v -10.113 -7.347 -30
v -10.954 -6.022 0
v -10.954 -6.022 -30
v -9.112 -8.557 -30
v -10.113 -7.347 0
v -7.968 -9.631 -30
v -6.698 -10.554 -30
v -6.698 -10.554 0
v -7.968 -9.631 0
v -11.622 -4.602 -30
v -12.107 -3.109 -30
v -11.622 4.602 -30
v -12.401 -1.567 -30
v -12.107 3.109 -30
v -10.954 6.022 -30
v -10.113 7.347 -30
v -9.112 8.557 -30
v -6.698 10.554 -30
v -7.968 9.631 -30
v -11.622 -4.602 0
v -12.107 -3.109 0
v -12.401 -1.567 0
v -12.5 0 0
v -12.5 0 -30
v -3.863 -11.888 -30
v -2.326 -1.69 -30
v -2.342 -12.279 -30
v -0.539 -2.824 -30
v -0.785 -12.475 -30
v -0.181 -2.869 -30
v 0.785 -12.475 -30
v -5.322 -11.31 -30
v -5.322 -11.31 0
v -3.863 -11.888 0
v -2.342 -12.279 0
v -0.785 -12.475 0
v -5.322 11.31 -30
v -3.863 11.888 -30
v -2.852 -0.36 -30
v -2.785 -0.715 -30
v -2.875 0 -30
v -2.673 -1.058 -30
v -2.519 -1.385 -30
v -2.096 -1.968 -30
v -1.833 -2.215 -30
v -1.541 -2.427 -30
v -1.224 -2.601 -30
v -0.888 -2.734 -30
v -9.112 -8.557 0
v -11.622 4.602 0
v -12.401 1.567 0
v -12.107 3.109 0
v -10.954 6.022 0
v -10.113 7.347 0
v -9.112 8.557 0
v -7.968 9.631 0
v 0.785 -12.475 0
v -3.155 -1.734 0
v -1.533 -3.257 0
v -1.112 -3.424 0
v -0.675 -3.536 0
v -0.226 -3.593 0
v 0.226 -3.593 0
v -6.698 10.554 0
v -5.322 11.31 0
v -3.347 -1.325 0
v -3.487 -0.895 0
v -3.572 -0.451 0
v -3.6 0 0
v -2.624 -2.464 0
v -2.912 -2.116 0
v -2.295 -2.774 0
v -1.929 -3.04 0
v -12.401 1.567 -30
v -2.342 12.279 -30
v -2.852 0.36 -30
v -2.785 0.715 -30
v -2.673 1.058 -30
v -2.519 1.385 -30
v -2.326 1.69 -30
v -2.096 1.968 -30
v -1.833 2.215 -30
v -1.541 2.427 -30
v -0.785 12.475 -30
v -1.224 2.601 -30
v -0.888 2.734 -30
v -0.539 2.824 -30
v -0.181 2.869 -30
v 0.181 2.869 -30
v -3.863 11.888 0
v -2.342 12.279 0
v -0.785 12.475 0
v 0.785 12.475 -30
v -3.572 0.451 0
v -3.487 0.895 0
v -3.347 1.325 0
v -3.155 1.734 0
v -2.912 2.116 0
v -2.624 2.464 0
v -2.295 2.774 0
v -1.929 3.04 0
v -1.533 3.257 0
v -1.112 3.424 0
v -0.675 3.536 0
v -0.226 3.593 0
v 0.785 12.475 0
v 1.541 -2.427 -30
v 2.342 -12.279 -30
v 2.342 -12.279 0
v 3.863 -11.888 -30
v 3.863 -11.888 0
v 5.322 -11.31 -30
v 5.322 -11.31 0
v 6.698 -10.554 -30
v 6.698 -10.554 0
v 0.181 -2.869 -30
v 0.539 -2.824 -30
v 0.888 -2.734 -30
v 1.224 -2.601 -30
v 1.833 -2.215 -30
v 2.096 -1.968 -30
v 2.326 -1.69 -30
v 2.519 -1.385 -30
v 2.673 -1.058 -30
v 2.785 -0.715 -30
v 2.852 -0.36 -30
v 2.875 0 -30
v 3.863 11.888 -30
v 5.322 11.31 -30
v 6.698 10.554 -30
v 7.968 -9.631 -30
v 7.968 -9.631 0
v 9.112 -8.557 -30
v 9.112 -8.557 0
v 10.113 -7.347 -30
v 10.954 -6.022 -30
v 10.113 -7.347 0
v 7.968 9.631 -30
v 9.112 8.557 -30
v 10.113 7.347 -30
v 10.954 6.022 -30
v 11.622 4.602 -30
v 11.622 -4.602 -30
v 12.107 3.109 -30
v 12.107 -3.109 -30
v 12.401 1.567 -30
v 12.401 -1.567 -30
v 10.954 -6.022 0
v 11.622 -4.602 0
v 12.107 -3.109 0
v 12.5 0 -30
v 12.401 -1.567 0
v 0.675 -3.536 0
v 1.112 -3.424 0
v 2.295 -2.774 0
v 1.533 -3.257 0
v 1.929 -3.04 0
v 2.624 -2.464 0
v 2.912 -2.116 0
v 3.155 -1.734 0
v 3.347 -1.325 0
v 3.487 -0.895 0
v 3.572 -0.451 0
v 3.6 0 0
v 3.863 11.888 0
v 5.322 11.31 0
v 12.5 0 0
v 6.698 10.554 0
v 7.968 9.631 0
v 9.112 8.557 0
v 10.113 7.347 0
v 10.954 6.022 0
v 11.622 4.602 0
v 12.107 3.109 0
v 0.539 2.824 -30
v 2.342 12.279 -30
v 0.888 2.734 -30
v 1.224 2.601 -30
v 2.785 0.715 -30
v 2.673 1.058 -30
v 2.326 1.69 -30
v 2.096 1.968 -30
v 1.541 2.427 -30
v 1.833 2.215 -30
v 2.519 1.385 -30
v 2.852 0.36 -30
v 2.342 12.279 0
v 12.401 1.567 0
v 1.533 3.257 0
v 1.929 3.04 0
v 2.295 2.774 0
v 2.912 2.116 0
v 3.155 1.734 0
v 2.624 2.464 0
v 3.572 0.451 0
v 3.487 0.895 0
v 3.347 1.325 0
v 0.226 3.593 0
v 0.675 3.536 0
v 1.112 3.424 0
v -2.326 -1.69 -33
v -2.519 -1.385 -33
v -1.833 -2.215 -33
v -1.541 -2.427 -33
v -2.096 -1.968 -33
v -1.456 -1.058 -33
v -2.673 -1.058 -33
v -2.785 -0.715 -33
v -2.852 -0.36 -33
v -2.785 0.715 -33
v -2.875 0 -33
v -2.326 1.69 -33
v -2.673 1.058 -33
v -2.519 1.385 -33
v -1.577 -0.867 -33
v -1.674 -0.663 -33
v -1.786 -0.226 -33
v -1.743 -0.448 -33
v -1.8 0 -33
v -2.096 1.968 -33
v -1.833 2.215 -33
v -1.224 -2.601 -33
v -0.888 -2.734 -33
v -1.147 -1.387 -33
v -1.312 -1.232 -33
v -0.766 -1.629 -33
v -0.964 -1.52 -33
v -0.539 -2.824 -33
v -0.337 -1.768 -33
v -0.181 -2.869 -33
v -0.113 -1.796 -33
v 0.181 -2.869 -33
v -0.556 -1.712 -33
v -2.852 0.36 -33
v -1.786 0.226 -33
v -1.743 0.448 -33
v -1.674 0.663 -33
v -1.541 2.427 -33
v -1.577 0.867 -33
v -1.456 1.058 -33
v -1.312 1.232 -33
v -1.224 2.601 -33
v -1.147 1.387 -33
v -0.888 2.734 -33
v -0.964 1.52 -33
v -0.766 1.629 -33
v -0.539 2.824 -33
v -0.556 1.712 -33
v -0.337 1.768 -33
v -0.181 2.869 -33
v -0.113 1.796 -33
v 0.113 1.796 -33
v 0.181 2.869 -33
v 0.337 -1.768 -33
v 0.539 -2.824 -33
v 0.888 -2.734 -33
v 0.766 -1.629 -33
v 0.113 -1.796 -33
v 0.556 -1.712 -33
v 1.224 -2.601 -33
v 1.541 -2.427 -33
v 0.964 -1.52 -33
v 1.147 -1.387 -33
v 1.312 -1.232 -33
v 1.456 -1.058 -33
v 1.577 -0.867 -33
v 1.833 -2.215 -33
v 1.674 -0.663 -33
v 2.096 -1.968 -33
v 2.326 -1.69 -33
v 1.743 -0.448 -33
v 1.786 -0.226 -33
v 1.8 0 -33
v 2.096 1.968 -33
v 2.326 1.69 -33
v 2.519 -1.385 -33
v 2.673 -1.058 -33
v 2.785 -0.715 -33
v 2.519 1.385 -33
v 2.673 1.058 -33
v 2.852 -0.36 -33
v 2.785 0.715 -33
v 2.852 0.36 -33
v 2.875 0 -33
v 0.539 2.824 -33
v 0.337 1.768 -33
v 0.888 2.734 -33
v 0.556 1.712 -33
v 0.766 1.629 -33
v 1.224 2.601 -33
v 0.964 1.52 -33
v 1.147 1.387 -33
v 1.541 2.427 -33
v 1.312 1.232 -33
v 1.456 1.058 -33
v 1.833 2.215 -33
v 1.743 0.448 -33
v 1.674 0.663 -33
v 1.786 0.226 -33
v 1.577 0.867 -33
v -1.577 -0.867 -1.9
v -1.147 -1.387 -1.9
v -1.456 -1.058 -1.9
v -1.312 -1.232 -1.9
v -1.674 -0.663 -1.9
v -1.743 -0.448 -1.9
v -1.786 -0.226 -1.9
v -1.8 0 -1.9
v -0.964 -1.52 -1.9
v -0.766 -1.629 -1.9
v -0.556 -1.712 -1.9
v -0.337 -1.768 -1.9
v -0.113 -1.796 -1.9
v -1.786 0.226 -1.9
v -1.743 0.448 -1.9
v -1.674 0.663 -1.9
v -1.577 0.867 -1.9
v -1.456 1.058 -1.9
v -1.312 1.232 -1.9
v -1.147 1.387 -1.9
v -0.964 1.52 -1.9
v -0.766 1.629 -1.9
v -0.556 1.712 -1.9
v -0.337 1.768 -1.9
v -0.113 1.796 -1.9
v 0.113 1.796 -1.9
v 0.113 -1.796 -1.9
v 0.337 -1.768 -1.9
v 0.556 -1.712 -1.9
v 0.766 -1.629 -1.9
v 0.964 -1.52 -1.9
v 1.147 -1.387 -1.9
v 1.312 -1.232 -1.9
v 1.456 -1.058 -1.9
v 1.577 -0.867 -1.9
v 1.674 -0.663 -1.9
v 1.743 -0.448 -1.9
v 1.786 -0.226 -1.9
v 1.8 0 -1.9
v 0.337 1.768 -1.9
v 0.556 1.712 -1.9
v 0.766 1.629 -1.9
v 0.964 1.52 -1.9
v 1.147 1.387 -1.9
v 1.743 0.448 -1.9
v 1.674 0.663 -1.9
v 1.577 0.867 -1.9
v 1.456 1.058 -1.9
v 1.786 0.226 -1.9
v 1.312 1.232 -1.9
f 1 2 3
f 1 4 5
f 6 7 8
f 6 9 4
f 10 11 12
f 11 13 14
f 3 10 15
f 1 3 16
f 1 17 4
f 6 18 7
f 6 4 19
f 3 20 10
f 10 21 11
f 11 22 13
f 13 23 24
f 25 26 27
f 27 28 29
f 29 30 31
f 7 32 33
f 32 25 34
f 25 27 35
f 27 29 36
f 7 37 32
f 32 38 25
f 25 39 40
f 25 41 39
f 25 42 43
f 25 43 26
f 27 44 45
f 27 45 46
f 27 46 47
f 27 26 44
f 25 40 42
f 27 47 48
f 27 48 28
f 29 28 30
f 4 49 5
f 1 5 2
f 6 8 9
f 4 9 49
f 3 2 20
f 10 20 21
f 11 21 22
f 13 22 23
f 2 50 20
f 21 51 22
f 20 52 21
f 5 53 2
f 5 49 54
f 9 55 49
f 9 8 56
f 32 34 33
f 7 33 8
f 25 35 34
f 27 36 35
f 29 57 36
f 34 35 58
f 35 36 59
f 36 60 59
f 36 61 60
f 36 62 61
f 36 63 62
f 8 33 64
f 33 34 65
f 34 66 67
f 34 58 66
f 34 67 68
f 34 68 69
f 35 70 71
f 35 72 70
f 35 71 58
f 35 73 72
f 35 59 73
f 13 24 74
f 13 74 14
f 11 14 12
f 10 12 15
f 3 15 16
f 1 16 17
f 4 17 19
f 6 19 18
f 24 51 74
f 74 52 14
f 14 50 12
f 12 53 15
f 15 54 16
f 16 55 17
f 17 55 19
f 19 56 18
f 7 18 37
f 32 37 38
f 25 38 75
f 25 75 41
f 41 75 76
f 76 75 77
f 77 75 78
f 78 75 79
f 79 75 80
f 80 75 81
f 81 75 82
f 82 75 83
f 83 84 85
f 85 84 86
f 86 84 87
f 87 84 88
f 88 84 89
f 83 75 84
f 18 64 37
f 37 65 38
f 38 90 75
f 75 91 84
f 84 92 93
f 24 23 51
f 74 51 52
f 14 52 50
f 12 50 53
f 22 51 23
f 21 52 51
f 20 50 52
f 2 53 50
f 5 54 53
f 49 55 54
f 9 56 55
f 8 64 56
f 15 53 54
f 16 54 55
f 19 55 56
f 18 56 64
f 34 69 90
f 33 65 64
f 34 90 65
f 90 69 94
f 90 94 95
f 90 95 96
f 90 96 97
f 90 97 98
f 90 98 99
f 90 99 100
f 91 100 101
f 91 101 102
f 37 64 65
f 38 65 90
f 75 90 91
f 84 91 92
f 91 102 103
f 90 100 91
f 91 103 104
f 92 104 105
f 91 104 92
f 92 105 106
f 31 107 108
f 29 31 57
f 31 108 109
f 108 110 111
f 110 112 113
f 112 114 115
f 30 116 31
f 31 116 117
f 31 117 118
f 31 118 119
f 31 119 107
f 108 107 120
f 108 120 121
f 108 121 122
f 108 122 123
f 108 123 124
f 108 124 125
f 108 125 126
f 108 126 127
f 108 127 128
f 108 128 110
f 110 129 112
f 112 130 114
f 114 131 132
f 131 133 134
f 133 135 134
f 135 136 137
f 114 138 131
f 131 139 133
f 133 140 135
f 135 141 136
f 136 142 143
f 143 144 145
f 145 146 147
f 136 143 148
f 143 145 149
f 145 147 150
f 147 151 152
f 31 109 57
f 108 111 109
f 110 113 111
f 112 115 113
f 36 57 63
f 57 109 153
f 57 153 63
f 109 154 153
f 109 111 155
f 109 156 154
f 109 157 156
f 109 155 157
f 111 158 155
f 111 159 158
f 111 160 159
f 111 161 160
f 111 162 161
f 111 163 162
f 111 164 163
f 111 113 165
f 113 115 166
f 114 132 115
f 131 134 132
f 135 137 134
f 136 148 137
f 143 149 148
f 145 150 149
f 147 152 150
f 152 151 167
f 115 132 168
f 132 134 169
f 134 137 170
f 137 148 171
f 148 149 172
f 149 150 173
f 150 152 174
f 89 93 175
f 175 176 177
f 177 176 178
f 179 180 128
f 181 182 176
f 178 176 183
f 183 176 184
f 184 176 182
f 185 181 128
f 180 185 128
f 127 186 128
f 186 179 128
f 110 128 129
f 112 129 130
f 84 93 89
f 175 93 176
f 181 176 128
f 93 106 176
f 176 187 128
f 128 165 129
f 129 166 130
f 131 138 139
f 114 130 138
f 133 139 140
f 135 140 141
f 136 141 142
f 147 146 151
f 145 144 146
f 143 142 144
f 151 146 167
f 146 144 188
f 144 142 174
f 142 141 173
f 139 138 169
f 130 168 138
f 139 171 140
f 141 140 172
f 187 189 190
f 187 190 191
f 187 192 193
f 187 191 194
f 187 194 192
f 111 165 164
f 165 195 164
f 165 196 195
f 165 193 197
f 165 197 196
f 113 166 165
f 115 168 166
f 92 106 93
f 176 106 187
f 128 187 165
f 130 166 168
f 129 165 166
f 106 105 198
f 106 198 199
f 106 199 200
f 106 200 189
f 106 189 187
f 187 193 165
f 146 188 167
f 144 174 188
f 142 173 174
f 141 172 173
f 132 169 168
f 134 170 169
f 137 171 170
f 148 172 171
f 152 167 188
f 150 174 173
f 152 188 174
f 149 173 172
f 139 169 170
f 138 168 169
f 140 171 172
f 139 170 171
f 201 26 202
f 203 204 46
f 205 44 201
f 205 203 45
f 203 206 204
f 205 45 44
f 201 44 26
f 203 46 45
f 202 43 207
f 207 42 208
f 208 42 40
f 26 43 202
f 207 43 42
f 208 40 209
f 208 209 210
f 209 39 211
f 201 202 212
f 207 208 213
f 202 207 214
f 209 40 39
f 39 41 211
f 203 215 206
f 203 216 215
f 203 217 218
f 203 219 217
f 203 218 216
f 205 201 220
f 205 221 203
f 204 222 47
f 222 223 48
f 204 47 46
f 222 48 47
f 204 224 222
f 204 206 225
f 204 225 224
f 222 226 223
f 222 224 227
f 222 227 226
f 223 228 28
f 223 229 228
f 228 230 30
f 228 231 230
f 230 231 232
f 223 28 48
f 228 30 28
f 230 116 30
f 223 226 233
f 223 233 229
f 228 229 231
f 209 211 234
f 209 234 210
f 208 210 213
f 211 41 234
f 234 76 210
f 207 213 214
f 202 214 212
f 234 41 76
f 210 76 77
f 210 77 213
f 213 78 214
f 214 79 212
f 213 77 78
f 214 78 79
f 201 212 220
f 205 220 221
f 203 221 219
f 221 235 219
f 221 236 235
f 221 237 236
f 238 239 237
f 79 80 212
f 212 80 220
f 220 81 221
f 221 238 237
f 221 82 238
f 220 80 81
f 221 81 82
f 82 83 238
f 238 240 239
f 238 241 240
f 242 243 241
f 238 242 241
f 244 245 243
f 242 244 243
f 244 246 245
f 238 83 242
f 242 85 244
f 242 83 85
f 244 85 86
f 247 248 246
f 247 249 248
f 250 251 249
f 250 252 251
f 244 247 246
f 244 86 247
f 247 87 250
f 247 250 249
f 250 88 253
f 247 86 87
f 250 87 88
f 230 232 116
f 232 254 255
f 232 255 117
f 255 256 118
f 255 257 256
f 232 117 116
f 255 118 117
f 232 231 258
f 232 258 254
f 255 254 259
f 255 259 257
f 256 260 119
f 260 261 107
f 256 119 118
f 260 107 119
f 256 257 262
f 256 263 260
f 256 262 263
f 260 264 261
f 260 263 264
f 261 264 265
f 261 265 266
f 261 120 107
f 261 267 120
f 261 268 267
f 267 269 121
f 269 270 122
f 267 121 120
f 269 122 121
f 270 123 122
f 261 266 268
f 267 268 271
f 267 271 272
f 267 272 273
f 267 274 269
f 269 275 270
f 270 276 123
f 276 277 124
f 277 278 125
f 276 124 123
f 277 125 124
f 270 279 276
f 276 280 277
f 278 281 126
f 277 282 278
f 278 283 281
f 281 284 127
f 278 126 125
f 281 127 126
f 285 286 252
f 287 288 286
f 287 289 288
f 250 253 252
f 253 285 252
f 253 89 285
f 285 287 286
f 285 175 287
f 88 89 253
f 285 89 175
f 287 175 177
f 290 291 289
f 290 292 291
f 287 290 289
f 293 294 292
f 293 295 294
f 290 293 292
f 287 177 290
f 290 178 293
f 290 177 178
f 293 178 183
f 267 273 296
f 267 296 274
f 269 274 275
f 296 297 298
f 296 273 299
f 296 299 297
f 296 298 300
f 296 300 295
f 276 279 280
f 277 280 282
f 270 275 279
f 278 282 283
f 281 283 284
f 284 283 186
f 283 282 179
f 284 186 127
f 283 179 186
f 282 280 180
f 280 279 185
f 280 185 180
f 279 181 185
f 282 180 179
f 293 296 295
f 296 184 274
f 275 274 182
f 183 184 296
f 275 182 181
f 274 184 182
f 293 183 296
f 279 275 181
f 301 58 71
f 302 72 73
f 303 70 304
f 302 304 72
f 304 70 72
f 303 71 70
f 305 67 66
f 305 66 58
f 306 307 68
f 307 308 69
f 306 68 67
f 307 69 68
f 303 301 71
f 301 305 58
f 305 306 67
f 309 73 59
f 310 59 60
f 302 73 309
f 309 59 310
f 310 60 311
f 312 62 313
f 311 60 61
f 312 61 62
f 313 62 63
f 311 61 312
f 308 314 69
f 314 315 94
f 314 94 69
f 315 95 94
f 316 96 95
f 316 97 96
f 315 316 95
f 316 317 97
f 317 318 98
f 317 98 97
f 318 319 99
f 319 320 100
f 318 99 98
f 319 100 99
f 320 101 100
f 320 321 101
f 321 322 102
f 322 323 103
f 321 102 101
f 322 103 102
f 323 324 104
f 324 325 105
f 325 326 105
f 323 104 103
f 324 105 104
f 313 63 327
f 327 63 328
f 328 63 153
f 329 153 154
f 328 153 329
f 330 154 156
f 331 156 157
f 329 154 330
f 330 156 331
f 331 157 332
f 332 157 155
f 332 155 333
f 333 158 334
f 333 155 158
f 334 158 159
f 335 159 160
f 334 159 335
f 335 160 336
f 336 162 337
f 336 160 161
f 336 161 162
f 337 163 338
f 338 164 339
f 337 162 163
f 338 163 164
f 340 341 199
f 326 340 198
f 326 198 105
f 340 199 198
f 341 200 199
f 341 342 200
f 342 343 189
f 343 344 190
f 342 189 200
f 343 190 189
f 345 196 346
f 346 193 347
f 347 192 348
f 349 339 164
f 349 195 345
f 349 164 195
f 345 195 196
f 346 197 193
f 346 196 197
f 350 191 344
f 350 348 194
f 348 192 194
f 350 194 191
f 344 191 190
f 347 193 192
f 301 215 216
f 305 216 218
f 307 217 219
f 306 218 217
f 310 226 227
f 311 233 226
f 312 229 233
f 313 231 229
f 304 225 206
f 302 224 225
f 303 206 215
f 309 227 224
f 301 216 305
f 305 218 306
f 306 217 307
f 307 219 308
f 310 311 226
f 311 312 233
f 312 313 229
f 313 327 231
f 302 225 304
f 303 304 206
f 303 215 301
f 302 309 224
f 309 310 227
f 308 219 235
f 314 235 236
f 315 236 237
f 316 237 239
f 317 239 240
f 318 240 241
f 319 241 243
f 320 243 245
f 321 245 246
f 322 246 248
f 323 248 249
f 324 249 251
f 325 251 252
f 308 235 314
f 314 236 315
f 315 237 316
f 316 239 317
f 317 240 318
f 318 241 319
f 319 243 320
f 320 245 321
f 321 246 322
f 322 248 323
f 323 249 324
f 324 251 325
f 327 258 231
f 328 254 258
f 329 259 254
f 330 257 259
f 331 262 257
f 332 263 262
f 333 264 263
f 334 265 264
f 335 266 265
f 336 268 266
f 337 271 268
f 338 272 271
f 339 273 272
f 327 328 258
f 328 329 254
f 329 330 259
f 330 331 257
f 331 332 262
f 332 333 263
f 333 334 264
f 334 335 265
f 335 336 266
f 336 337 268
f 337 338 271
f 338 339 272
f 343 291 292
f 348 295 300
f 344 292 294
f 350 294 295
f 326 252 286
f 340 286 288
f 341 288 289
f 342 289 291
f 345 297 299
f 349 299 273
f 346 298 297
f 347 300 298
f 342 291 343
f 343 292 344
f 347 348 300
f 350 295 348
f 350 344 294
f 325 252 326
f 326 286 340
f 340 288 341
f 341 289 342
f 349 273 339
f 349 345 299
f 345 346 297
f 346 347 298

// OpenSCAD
$fn = 50;


difference() {
	union() {
		translate(v = [0, 0, -30.0000000000]) {
			cylinder(h = 30, r = 12.5000000000);
		}
		#translate(v = [0, 0, -33.0000000000]) {
			cylinder(h = 33, r = 2.8750000000);
		}
	}
	union() {
		translate(v = [0, 0, 0]) {
			rotate(a = [0, 0, 0]) {
				difference() {
					union() {
						translate(v = [0, 0, -33.0000000000]) {
							cylinder(h = 33, r = 1.5000000000);
						}
						translate(v = [0, 0, -1.9000000000]) {
							cylinder(h = 1.9000000000, r1 = 1.8000000000, r2 = 3.6000000000);
						}
						translate(v = [0, 0, -33.0000000000]) {
							cylinder(h = 33, r = 1.8000000000);
						}
						translate(v = [0, 0, -33.0000000000]) {
							cylinder(h = 33, r = 1.5000000000);
						}
					}
					union();
				}
			}
		}
	}
}
